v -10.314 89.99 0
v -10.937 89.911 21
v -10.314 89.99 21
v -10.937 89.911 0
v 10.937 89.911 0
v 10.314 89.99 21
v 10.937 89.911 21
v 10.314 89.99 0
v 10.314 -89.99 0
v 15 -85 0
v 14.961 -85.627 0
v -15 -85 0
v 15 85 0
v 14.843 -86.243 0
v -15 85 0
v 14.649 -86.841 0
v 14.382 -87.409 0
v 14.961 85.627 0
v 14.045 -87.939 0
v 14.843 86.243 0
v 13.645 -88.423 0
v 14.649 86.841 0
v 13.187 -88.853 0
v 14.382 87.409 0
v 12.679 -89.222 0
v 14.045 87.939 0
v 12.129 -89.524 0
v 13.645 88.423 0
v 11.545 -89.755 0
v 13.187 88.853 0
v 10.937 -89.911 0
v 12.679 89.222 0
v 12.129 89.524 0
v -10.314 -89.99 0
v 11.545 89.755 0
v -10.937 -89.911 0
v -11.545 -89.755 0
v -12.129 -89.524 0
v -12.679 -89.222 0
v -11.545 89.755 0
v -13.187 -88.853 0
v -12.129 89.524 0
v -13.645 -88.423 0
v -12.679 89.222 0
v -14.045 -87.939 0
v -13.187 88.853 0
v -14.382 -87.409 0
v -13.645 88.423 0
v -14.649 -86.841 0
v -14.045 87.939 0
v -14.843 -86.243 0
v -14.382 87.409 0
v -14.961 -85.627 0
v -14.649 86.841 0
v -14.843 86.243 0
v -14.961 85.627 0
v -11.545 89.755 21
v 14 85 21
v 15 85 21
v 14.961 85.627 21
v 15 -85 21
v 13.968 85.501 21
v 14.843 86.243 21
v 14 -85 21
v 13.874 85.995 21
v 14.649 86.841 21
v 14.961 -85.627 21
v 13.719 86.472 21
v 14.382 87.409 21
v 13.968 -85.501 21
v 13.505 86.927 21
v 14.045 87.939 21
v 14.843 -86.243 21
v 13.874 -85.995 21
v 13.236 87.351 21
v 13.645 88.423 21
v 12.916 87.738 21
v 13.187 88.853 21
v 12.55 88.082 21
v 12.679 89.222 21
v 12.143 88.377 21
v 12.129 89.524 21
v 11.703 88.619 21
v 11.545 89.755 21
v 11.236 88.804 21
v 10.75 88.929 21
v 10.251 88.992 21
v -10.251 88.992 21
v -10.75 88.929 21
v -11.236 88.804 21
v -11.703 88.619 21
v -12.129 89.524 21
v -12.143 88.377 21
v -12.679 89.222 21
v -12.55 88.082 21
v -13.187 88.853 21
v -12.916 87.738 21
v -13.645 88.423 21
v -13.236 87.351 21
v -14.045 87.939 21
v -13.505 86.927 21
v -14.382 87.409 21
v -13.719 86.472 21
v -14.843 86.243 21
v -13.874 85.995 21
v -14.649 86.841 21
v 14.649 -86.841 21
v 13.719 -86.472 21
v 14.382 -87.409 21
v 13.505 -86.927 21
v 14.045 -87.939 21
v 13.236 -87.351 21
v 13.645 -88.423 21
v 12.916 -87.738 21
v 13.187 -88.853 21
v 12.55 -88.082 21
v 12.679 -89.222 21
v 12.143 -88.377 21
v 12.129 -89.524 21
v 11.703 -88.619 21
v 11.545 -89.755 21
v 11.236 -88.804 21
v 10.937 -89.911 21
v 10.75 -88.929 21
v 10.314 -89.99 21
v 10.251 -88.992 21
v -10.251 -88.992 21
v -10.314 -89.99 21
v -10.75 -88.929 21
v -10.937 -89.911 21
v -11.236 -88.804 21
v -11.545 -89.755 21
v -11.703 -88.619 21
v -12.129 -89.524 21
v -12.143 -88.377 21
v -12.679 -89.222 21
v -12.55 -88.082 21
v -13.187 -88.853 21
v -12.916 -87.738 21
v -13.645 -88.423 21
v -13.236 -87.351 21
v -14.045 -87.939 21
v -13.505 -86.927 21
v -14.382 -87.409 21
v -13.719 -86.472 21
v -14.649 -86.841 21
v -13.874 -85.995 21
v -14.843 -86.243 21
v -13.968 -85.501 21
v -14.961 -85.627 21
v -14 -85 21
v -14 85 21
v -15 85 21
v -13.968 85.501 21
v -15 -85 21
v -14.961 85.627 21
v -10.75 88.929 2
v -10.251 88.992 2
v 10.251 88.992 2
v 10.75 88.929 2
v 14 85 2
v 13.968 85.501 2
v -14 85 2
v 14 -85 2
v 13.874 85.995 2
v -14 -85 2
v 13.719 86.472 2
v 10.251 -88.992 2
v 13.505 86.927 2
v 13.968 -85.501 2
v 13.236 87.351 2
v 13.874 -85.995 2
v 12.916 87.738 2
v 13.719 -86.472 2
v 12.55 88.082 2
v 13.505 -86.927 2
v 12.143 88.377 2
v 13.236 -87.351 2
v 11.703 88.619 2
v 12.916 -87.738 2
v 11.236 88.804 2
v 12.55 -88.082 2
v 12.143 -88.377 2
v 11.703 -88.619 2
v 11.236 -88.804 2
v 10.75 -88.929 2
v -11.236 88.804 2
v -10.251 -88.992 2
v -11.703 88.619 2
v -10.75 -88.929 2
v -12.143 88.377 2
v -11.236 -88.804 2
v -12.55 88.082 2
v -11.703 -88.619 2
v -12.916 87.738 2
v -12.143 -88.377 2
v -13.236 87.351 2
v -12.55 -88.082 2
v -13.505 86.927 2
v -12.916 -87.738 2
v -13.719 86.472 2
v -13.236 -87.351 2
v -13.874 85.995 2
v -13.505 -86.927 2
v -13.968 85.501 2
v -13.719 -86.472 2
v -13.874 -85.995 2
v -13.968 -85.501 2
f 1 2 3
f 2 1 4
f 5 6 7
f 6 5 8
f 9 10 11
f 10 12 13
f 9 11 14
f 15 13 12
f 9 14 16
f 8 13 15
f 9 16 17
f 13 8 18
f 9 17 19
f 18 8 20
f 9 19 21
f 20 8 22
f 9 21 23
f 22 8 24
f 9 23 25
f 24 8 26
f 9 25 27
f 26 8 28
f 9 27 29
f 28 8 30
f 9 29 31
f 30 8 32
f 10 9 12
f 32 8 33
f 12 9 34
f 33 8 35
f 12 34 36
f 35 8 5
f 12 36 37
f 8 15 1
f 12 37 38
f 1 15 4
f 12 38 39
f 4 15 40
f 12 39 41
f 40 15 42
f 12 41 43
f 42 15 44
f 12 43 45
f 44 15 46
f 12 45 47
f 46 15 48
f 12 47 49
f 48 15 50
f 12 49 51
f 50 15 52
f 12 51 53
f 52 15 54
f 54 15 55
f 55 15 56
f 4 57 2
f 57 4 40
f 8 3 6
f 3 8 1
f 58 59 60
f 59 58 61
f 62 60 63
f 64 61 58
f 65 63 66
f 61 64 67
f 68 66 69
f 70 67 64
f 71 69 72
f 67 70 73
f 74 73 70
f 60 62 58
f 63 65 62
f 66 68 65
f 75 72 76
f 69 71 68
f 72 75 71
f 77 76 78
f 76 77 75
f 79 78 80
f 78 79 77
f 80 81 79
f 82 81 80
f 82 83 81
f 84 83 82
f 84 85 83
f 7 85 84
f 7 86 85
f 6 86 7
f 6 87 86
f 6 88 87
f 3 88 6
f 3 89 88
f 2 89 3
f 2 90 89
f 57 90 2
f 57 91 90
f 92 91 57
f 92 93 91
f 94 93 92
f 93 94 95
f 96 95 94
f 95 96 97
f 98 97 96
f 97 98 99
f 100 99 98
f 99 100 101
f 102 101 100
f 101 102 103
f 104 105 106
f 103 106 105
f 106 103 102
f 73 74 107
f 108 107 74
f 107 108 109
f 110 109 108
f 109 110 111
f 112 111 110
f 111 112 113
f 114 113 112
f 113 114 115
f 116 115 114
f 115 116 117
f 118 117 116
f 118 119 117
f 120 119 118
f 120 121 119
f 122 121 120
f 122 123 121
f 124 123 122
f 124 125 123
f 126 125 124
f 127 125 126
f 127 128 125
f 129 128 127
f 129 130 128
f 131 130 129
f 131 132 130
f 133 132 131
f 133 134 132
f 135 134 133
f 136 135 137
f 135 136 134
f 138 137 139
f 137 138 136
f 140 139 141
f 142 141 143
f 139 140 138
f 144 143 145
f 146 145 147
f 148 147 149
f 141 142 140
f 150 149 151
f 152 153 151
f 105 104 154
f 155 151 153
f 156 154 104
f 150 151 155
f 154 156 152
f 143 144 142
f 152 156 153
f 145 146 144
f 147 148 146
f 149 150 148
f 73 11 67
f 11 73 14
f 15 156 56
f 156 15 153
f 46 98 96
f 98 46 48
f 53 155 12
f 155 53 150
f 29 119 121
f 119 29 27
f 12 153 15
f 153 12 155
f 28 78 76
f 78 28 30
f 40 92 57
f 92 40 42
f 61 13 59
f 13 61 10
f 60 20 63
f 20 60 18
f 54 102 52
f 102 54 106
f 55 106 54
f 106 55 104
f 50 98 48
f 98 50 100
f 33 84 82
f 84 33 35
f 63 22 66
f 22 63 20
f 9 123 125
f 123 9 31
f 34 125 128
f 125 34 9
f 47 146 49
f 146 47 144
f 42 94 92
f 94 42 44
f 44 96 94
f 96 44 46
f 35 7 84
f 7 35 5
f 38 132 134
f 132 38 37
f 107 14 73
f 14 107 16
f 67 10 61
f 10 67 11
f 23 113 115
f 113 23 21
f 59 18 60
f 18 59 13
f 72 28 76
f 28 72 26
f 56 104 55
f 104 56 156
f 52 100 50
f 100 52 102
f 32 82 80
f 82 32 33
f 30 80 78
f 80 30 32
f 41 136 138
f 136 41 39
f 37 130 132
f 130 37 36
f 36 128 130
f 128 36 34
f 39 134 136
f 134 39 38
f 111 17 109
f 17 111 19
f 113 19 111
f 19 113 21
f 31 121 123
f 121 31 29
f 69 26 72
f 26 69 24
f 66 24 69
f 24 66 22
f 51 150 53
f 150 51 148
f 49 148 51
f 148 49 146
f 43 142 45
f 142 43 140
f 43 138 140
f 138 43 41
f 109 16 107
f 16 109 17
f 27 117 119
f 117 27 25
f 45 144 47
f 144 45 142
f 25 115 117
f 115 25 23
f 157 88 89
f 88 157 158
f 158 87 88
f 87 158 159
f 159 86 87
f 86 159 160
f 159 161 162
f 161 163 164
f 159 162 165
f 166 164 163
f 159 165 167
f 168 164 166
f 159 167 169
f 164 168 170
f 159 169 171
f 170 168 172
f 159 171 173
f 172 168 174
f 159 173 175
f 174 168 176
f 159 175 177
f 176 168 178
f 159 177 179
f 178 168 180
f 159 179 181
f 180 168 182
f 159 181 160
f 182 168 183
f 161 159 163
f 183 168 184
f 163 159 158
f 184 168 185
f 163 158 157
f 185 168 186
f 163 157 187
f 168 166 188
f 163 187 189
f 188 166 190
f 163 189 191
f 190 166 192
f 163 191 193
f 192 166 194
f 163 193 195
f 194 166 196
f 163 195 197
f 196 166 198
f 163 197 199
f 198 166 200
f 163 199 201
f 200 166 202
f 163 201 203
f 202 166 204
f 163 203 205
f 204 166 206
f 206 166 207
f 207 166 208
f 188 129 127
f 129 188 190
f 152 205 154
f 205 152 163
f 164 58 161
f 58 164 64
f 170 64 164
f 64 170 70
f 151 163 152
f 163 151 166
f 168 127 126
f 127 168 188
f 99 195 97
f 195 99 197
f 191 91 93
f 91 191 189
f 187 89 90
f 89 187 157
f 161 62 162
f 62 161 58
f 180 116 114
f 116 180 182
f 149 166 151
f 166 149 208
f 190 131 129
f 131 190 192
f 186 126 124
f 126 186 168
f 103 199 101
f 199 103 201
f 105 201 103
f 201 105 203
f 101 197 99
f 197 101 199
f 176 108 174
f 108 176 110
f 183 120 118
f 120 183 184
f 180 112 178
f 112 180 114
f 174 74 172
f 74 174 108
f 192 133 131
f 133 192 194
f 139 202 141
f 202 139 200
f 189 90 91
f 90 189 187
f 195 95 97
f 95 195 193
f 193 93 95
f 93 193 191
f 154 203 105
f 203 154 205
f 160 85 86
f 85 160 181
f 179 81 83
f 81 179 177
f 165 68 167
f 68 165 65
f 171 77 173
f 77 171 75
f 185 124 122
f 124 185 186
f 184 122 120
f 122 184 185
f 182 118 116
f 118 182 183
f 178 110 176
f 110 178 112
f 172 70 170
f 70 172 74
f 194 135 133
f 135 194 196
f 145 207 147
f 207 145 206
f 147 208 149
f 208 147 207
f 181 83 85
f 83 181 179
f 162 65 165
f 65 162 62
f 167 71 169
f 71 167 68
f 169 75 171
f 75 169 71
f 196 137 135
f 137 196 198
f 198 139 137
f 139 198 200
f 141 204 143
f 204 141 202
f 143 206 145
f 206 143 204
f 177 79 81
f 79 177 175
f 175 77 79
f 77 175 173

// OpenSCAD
$fn = 50;


difference() {
	union() {
		hull() {
			translate(v = [-10.0000000000, 85.0000000000, 0]) {
				cylinder(h = 21, r = 5);
			}
			translate(v = [10.0000000000, 85.0000000000, 0]) {
				cylinder(h = 21, r = 5);
			}
			translate(v = [-10.0000000000, -85.0000000000, 0]) {
				cylinder(h = 21, r = 5);
			}
			translate(v = [10.0000000000, -85.0000000000, 0]) {
				cylinder(h = 21, r = 5);
			}
		}
	}
	union() {
		translate(v = [0, 0, 2]) {
			hull() {
				translate(v = [-10.0000000000, 85.0000000000, 0]) {
					cylinder(h = 19, r = 4);
				}
				translate(v = [10.0000000000, 85.0000000000, 0]) {
					cylinder(h = 19, r = 4);
				}
				translate(v = [-10.0000000000, -85.0000000000, 0]) {
					cylinder(h = 19, r = 4);
				}
				translate(v = [10.0000000000, -85.0000000000, 0]) {
					cylinder(h = 19, r = 4);
				}
			}
		}
	}
}
